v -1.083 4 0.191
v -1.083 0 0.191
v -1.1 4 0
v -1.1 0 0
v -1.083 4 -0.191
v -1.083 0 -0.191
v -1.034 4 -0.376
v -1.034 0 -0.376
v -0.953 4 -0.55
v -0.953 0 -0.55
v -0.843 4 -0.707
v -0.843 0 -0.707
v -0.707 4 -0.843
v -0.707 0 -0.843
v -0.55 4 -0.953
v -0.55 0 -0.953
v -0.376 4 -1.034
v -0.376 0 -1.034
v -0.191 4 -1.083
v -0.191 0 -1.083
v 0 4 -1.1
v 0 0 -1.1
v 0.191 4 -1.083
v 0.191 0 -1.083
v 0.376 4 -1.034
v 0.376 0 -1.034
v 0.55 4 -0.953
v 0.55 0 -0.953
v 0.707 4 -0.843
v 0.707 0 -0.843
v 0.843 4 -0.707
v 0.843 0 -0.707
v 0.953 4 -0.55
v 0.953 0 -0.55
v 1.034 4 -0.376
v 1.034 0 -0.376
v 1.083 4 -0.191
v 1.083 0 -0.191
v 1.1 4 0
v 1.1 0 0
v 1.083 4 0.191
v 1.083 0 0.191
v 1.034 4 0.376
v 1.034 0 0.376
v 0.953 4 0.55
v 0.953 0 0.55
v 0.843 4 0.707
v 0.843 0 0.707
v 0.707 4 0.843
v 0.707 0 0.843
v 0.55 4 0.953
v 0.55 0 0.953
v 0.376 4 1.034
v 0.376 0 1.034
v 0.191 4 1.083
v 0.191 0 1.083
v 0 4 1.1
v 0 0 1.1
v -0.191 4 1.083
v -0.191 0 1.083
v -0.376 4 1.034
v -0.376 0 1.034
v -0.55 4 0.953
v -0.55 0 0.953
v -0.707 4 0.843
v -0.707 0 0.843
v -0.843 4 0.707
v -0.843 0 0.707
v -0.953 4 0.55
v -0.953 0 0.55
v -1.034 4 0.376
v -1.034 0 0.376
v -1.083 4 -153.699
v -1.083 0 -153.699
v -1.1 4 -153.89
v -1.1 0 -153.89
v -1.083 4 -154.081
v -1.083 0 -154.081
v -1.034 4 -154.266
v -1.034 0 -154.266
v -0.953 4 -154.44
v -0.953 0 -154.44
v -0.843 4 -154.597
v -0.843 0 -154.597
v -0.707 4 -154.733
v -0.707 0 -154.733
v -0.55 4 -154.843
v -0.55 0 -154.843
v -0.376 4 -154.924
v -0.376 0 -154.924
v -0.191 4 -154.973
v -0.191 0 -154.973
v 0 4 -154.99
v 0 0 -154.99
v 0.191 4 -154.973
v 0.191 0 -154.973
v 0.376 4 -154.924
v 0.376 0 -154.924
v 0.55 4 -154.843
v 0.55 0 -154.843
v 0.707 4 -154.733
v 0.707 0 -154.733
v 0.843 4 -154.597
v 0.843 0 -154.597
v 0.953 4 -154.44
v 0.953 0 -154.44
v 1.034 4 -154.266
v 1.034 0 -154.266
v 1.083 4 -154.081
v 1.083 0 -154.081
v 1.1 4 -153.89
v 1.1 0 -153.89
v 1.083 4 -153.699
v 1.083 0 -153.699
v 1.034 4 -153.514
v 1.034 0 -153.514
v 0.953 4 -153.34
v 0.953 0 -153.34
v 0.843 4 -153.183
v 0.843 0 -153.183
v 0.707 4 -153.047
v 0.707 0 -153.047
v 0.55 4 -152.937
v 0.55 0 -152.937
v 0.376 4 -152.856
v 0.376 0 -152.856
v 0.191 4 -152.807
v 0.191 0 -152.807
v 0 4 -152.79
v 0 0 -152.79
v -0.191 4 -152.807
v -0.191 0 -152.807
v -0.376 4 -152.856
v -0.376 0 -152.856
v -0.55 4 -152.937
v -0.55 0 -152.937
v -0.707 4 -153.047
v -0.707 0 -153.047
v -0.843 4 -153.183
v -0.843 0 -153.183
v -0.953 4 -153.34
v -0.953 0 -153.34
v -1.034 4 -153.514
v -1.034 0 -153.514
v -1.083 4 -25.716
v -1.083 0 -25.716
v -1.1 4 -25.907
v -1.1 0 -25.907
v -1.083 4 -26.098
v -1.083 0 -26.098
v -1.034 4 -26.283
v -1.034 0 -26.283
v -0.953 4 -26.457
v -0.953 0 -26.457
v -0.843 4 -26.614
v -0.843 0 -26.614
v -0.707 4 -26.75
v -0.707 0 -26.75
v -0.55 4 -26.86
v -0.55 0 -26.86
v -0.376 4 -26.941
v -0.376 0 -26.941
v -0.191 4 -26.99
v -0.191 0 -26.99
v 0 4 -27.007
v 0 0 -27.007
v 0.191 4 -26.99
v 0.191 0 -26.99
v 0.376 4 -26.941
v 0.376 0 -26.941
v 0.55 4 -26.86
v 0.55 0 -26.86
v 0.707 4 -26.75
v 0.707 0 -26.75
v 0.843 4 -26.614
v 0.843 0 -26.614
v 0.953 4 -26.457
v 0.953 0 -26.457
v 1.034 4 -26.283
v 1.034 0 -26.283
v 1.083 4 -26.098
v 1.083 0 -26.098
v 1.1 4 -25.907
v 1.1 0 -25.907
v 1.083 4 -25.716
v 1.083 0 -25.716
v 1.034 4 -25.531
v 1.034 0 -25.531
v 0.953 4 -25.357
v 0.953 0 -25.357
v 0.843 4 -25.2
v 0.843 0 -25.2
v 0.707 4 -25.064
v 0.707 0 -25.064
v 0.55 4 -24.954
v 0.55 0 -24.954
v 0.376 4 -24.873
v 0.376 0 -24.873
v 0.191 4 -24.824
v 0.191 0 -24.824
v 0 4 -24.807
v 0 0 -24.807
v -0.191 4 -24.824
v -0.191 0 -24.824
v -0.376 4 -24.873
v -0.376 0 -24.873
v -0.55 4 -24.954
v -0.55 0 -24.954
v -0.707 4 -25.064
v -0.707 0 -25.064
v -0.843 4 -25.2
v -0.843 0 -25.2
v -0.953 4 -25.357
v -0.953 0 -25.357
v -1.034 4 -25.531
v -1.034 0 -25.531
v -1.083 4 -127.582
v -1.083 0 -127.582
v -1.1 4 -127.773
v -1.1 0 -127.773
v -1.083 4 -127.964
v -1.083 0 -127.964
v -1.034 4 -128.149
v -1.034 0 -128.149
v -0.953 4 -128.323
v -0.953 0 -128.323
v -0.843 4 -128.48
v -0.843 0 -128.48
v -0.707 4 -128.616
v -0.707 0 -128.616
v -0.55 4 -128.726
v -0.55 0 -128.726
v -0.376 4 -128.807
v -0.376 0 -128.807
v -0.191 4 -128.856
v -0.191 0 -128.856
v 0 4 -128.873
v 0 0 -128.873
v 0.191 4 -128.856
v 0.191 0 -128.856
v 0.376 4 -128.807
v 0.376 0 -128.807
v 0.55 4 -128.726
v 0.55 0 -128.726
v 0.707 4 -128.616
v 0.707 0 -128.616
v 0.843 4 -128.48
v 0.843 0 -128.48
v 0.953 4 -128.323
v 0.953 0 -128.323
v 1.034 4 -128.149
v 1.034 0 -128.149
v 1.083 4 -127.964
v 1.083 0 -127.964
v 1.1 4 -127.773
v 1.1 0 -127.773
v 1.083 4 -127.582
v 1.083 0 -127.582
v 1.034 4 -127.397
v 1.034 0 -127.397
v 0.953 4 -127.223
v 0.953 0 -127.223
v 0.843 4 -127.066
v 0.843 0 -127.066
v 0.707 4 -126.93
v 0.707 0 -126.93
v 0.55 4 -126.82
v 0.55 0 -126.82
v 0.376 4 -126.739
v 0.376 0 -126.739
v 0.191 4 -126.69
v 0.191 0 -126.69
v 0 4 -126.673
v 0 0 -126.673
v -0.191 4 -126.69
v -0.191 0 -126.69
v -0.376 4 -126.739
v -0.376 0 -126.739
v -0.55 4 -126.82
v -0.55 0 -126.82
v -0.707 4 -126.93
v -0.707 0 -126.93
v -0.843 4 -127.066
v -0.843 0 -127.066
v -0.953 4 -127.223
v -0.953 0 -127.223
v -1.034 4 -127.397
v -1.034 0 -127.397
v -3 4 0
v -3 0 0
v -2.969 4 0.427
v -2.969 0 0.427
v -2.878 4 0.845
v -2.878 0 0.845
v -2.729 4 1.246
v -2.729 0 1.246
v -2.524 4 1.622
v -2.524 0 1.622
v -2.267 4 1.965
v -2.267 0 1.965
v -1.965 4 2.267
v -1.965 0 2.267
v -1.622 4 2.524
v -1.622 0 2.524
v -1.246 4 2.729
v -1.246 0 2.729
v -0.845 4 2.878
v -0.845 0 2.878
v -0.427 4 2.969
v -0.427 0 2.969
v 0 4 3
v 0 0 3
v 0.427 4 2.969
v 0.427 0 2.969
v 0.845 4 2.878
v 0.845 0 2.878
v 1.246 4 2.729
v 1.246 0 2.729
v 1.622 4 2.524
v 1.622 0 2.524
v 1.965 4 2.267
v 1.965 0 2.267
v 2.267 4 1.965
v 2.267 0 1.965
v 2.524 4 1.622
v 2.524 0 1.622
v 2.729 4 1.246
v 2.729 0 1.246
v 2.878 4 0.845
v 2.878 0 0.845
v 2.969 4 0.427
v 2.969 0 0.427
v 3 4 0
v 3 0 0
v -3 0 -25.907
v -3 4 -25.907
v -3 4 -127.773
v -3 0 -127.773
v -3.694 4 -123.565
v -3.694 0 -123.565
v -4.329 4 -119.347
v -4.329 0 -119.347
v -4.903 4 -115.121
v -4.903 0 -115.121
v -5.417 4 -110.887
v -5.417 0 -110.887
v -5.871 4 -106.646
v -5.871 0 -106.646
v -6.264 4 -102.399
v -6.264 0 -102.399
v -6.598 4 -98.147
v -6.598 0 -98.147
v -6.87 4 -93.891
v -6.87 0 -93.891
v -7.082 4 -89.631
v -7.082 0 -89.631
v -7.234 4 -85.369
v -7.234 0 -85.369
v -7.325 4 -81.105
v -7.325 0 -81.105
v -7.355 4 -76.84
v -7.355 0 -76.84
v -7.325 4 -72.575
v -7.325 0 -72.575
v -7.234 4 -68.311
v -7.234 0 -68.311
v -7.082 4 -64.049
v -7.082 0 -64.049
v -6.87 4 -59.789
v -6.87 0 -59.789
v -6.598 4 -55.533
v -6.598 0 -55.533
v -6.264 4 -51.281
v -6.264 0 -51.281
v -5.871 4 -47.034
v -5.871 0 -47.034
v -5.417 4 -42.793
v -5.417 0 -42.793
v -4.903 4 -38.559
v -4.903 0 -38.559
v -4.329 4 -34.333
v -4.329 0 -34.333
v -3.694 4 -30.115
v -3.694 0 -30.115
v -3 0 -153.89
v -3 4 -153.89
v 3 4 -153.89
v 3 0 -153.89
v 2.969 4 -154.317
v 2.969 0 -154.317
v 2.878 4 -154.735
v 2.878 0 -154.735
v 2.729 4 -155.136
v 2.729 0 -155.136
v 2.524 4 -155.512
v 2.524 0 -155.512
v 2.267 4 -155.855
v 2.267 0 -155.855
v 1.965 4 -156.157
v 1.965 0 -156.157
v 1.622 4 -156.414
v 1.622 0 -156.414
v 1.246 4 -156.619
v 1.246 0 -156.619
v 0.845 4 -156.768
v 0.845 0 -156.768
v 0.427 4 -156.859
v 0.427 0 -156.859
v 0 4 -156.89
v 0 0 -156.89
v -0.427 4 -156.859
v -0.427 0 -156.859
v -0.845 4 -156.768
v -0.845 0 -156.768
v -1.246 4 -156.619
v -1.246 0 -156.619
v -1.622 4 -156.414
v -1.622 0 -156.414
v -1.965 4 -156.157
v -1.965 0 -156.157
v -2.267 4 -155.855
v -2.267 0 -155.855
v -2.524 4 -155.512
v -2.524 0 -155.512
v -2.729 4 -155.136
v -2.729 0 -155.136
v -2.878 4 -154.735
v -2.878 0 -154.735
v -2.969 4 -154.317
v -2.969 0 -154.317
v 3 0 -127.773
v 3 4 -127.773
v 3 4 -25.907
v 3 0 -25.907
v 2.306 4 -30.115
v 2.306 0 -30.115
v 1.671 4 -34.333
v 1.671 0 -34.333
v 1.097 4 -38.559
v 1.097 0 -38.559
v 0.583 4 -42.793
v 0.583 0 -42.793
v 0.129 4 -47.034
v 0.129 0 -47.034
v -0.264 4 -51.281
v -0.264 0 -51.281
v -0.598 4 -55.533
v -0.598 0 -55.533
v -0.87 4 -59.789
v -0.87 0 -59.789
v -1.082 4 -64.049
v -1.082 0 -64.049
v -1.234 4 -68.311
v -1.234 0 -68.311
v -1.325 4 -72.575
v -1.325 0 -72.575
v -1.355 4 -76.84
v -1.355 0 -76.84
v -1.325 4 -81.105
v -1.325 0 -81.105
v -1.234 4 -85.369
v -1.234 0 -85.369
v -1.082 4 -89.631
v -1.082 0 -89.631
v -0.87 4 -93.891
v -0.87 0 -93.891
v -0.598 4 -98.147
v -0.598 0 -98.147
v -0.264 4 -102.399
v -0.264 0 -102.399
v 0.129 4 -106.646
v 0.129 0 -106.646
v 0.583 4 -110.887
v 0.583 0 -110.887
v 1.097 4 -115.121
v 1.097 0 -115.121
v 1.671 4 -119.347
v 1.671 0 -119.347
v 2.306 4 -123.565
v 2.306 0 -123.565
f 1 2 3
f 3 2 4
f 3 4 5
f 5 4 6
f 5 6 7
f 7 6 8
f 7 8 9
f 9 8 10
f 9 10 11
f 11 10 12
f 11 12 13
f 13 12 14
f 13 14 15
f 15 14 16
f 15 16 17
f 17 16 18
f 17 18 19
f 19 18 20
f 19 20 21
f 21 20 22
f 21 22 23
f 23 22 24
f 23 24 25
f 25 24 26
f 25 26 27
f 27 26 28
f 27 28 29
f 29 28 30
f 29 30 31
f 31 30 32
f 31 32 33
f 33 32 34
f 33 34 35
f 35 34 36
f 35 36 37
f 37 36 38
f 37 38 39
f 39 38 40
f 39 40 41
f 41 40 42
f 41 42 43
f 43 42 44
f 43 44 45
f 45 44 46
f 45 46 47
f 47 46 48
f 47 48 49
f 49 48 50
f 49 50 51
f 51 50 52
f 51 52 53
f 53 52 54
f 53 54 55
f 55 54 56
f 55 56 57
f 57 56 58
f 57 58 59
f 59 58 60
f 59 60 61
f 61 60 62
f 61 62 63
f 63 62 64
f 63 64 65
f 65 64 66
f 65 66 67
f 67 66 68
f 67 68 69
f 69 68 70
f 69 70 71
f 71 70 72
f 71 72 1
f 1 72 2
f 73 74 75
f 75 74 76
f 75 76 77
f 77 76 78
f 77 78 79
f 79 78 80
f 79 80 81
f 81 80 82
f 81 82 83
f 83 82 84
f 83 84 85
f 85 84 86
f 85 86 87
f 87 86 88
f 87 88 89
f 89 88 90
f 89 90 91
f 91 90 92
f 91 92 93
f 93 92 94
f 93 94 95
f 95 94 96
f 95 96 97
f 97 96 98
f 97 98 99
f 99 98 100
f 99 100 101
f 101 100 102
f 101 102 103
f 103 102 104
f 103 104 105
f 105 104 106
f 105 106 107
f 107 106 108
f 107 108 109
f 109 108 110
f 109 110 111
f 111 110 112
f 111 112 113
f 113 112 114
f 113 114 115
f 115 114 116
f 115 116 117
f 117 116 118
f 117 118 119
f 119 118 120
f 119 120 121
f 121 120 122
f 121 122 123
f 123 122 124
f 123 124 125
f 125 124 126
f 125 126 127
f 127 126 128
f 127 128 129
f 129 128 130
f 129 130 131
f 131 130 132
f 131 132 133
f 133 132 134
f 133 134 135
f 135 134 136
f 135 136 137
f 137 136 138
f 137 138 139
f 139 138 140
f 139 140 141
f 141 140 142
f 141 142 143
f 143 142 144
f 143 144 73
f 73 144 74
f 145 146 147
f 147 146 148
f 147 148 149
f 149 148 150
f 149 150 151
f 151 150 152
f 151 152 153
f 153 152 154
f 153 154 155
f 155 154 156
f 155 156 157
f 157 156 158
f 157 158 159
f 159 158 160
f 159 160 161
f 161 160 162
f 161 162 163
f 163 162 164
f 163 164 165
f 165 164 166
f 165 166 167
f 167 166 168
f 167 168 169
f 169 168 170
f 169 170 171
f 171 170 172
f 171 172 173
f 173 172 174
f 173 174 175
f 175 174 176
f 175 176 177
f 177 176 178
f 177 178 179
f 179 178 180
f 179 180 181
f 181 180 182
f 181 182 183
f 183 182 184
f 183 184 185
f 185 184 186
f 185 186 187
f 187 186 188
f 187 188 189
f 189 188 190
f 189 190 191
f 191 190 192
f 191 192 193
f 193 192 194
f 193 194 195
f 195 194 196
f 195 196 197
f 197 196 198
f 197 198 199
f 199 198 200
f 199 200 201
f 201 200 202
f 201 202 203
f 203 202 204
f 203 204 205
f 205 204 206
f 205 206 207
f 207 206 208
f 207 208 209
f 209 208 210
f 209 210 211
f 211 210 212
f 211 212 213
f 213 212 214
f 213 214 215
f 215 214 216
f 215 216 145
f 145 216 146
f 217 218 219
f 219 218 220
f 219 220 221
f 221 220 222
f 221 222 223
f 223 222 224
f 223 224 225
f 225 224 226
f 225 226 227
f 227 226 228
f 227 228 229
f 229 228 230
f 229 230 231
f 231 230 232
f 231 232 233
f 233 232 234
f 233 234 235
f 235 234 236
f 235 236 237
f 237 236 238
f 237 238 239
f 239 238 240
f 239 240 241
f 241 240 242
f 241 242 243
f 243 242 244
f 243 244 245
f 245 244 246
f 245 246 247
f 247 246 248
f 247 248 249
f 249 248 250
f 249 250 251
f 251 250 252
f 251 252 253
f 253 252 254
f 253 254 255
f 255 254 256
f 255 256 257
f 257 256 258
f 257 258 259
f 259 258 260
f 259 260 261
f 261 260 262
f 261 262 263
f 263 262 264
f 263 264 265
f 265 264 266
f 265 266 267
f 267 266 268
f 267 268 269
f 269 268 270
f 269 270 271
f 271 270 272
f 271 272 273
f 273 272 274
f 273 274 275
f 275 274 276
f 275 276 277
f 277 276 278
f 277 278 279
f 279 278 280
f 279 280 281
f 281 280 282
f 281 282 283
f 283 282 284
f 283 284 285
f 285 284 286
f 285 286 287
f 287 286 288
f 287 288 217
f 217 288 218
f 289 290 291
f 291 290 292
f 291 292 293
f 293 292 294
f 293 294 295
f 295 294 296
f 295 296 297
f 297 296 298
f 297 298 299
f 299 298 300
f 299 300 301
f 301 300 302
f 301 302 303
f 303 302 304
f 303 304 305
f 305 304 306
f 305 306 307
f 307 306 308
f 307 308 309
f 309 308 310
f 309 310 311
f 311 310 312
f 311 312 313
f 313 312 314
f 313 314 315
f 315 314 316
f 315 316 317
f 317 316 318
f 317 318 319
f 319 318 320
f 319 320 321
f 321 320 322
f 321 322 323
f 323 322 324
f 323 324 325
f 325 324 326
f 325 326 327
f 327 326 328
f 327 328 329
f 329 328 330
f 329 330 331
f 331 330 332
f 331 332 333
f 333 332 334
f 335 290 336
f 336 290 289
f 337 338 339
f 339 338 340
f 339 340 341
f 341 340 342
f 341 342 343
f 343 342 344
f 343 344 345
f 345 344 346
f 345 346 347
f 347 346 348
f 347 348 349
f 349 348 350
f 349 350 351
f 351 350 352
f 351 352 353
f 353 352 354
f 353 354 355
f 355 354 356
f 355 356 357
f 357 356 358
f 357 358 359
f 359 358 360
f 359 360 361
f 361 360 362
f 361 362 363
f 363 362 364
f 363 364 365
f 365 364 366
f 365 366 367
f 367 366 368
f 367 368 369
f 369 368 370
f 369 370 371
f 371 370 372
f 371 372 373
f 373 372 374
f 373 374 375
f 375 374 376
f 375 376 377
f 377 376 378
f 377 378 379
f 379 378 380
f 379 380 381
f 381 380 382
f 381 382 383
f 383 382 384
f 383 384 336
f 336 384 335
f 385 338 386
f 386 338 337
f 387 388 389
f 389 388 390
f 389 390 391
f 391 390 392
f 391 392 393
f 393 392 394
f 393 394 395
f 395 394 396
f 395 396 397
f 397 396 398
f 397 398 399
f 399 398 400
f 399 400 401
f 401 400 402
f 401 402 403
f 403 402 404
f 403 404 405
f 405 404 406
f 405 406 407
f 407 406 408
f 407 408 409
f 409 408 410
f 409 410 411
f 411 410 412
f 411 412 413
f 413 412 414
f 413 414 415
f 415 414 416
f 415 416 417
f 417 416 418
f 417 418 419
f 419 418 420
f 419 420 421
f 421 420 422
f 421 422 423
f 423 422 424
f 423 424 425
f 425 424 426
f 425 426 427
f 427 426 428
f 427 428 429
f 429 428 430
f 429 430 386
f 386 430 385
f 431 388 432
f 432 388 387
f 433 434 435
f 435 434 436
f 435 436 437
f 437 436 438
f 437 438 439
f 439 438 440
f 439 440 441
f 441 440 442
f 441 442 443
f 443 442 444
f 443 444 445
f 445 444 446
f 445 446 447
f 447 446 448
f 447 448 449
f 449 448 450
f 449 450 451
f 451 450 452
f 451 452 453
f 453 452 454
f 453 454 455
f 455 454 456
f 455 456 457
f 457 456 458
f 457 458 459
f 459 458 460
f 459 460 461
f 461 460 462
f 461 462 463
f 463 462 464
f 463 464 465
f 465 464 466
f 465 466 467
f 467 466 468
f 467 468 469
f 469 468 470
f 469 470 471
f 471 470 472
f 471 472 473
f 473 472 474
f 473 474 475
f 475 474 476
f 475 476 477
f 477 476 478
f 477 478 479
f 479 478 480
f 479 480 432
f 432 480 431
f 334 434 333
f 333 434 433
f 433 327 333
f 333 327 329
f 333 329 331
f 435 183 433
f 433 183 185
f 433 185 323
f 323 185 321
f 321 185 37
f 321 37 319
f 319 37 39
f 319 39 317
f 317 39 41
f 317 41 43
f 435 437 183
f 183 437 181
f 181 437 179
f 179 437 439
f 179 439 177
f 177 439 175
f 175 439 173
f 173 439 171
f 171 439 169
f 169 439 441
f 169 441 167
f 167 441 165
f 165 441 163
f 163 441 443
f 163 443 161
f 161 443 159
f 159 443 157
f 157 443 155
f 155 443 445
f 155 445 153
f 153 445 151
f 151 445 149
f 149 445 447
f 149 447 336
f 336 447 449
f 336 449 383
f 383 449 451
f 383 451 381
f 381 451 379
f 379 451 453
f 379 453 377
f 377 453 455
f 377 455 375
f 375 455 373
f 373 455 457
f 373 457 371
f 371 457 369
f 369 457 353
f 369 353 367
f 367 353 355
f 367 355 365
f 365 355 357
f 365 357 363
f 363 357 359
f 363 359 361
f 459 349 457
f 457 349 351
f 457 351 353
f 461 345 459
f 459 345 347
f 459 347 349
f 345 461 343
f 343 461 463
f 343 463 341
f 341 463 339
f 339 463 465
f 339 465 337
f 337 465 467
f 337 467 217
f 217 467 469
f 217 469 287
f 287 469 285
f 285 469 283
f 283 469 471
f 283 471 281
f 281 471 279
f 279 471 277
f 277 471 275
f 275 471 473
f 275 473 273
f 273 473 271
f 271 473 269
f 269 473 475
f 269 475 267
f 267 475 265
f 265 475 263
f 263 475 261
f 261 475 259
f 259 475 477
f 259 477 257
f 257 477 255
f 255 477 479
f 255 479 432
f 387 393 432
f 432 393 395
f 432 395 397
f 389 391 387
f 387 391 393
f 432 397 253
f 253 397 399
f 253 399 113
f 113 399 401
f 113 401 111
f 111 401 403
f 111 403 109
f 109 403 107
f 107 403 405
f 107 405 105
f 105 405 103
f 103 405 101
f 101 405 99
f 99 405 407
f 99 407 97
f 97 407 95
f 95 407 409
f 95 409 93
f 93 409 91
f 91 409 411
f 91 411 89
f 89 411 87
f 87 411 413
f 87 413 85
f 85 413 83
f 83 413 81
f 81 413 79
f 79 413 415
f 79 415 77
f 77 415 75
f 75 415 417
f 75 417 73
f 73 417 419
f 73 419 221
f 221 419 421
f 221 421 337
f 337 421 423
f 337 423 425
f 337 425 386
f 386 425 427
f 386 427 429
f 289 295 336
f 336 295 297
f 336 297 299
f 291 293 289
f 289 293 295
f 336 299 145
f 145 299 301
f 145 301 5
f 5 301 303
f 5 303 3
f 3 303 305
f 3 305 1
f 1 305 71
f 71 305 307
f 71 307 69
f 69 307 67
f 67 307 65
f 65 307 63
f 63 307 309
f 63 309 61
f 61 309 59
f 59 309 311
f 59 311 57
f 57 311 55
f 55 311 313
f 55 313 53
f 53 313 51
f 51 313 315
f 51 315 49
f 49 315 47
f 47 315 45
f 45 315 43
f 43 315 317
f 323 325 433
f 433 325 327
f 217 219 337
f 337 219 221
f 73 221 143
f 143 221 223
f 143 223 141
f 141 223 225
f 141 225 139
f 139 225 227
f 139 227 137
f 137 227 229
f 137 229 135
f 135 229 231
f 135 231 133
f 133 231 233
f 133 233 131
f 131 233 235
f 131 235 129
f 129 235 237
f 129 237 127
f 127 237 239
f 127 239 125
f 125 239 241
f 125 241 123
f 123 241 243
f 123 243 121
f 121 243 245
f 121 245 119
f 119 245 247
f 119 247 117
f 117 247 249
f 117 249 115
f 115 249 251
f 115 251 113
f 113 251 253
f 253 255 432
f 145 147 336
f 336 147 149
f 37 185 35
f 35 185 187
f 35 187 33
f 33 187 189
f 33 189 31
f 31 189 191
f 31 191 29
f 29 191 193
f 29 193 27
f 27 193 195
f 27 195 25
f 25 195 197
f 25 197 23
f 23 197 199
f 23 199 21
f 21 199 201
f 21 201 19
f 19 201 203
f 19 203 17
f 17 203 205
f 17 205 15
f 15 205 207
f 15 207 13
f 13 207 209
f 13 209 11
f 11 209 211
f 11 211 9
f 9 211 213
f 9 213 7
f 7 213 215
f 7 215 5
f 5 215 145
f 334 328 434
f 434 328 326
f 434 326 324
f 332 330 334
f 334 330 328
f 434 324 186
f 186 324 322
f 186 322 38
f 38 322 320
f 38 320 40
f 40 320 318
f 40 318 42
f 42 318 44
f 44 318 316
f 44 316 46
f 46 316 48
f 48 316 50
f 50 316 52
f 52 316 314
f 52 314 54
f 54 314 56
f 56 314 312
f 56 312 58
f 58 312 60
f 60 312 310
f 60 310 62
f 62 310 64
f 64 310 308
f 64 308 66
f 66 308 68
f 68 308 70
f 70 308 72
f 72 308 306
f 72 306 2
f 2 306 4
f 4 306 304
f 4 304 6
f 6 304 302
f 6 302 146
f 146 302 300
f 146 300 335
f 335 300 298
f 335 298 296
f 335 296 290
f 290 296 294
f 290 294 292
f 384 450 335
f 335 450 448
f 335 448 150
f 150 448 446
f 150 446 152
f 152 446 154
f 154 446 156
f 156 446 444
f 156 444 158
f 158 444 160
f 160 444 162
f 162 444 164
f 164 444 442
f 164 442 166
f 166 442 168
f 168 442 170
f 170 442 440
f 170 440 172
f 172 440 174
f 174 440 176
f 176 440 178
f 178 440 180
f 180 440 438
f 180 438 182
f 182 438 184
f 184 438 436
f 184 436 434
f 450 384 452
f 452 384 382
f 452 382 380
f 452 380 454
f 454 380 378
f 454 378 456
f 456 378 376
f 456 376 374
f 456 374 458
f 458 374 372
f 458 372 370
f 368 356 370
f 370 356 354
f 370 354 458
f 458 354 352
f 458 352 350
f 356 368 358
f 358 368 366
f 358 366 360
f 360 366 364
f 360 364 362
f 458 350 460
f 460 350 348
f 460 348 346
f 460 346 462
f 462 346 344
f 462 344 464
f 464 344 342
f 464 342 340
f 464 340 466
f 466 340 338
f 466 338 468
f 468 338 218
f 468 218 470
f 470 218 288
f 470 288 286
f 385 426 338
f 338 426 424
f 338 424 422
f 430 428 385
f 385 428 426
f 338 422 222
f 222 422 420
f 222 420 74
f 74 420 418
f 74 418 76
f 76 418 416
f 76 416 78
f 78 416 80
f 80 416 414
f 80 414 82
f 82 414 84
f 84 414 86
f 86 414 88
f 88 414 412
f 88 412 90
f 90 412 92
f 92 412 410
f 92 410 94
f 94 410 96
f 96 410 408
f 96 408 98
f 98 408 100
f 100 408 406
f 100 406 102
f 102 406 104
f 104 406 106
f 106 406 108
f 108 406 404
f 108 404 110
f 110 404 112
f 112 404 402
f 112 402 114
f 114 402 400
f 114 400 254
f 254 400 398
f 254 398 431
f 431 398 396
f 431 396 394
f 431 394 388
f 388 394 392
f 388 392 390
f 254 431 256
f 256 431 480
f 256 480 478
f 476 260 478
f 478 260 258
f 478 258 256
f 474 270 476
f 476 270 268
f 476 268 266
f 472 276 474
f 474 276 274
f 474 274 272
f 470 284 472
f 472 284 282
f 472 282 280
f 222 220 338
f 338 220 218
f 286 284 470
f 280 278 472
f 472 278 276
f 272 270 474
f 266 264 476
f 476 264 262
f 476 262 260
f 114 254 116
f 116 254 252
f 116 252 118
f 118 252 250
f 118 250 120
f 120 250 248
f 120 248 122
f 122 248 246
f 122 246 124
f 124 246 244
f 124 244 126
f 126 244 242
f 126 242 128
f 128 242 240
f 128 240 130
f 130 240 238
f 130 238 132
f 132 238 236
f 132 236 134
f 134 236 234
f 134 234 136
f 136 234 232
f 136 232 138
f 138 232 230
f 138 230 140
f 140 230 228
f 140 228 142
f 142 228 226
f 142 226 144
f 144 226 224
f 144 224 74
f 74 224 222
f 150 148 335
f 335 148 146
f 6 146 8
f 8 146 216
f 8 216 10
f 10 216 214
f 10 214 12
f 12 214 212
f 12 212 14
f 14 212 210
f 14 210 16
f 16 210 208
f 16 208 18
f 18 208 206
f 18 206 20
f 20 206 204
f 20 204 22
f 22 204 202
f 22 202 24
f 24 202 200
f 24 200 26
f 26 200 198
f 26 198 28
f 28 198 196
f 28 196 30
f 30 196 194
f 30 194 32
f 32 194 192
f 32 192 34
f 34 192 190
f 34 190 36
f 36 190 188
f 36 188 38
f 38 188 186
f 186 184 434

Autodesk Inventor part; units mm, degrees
ref_plane "YZ Plane" through (0, 0, 0) normal (1, 0, 0) x (0, 1, 0)
ref_plane "XZ Plane" through (0, 0, 0) normal (0, 1, 0) x (-1, 0, 0)
ref_plane "XY Plane" through (0, 0, 0) normal (0, 0, 1) x (1, 0, 0)
sketch "Sketch1" plane through (0, 0, 0) normal (0, 1, 0) x (-1, 0, 0)
  line L0 (0, 0) -> (0, -153.89) construction
  line L1 (3, 0) -> (3, -153.89)
  line L2 (-3, -153.89) -> (-3, 0)
  arc A0 (3, 0) -> (-3, 0) centre (0, 0) ccw
  arc A1 (-3, -153.89) -> (3, -153.89) centre (0, -153.89) ccw
  circle A2 centre (0, 0) radius 1.1
  circle A3 centre (0, -153.89) radius 1.1
  circle A4 centre (0, -25.907) radius 1.1
  circle A5 centre (0, -127.773) radius 1.1
  arc A6 (3, -127.773) -> (3, -25.907) centre (-292.6448, -76.84) ccw
  arc A7 (-3, -127.773) -> (-3, -25.907) centre (-298.6448, -76.84) ccw
  point P0 (0, -76.945)
  dimension "d0" = 2.2
  dimension "d1" = 2.2
  dimension "d2" = 6
  dimension "d3" = 153.89
  dimension "d10" = 2.2
  dimension "d11" = 25.907
  dimension "d12" = 2.2
  dimension "d13" = 127.773
  dimension "d16" = 300
  dimension "d17" = 300
extrude "Extrusion1" add sketch "Sketch1" along normal blind 4 contours L1 A1 L2 A7 A0 | A6 L1
